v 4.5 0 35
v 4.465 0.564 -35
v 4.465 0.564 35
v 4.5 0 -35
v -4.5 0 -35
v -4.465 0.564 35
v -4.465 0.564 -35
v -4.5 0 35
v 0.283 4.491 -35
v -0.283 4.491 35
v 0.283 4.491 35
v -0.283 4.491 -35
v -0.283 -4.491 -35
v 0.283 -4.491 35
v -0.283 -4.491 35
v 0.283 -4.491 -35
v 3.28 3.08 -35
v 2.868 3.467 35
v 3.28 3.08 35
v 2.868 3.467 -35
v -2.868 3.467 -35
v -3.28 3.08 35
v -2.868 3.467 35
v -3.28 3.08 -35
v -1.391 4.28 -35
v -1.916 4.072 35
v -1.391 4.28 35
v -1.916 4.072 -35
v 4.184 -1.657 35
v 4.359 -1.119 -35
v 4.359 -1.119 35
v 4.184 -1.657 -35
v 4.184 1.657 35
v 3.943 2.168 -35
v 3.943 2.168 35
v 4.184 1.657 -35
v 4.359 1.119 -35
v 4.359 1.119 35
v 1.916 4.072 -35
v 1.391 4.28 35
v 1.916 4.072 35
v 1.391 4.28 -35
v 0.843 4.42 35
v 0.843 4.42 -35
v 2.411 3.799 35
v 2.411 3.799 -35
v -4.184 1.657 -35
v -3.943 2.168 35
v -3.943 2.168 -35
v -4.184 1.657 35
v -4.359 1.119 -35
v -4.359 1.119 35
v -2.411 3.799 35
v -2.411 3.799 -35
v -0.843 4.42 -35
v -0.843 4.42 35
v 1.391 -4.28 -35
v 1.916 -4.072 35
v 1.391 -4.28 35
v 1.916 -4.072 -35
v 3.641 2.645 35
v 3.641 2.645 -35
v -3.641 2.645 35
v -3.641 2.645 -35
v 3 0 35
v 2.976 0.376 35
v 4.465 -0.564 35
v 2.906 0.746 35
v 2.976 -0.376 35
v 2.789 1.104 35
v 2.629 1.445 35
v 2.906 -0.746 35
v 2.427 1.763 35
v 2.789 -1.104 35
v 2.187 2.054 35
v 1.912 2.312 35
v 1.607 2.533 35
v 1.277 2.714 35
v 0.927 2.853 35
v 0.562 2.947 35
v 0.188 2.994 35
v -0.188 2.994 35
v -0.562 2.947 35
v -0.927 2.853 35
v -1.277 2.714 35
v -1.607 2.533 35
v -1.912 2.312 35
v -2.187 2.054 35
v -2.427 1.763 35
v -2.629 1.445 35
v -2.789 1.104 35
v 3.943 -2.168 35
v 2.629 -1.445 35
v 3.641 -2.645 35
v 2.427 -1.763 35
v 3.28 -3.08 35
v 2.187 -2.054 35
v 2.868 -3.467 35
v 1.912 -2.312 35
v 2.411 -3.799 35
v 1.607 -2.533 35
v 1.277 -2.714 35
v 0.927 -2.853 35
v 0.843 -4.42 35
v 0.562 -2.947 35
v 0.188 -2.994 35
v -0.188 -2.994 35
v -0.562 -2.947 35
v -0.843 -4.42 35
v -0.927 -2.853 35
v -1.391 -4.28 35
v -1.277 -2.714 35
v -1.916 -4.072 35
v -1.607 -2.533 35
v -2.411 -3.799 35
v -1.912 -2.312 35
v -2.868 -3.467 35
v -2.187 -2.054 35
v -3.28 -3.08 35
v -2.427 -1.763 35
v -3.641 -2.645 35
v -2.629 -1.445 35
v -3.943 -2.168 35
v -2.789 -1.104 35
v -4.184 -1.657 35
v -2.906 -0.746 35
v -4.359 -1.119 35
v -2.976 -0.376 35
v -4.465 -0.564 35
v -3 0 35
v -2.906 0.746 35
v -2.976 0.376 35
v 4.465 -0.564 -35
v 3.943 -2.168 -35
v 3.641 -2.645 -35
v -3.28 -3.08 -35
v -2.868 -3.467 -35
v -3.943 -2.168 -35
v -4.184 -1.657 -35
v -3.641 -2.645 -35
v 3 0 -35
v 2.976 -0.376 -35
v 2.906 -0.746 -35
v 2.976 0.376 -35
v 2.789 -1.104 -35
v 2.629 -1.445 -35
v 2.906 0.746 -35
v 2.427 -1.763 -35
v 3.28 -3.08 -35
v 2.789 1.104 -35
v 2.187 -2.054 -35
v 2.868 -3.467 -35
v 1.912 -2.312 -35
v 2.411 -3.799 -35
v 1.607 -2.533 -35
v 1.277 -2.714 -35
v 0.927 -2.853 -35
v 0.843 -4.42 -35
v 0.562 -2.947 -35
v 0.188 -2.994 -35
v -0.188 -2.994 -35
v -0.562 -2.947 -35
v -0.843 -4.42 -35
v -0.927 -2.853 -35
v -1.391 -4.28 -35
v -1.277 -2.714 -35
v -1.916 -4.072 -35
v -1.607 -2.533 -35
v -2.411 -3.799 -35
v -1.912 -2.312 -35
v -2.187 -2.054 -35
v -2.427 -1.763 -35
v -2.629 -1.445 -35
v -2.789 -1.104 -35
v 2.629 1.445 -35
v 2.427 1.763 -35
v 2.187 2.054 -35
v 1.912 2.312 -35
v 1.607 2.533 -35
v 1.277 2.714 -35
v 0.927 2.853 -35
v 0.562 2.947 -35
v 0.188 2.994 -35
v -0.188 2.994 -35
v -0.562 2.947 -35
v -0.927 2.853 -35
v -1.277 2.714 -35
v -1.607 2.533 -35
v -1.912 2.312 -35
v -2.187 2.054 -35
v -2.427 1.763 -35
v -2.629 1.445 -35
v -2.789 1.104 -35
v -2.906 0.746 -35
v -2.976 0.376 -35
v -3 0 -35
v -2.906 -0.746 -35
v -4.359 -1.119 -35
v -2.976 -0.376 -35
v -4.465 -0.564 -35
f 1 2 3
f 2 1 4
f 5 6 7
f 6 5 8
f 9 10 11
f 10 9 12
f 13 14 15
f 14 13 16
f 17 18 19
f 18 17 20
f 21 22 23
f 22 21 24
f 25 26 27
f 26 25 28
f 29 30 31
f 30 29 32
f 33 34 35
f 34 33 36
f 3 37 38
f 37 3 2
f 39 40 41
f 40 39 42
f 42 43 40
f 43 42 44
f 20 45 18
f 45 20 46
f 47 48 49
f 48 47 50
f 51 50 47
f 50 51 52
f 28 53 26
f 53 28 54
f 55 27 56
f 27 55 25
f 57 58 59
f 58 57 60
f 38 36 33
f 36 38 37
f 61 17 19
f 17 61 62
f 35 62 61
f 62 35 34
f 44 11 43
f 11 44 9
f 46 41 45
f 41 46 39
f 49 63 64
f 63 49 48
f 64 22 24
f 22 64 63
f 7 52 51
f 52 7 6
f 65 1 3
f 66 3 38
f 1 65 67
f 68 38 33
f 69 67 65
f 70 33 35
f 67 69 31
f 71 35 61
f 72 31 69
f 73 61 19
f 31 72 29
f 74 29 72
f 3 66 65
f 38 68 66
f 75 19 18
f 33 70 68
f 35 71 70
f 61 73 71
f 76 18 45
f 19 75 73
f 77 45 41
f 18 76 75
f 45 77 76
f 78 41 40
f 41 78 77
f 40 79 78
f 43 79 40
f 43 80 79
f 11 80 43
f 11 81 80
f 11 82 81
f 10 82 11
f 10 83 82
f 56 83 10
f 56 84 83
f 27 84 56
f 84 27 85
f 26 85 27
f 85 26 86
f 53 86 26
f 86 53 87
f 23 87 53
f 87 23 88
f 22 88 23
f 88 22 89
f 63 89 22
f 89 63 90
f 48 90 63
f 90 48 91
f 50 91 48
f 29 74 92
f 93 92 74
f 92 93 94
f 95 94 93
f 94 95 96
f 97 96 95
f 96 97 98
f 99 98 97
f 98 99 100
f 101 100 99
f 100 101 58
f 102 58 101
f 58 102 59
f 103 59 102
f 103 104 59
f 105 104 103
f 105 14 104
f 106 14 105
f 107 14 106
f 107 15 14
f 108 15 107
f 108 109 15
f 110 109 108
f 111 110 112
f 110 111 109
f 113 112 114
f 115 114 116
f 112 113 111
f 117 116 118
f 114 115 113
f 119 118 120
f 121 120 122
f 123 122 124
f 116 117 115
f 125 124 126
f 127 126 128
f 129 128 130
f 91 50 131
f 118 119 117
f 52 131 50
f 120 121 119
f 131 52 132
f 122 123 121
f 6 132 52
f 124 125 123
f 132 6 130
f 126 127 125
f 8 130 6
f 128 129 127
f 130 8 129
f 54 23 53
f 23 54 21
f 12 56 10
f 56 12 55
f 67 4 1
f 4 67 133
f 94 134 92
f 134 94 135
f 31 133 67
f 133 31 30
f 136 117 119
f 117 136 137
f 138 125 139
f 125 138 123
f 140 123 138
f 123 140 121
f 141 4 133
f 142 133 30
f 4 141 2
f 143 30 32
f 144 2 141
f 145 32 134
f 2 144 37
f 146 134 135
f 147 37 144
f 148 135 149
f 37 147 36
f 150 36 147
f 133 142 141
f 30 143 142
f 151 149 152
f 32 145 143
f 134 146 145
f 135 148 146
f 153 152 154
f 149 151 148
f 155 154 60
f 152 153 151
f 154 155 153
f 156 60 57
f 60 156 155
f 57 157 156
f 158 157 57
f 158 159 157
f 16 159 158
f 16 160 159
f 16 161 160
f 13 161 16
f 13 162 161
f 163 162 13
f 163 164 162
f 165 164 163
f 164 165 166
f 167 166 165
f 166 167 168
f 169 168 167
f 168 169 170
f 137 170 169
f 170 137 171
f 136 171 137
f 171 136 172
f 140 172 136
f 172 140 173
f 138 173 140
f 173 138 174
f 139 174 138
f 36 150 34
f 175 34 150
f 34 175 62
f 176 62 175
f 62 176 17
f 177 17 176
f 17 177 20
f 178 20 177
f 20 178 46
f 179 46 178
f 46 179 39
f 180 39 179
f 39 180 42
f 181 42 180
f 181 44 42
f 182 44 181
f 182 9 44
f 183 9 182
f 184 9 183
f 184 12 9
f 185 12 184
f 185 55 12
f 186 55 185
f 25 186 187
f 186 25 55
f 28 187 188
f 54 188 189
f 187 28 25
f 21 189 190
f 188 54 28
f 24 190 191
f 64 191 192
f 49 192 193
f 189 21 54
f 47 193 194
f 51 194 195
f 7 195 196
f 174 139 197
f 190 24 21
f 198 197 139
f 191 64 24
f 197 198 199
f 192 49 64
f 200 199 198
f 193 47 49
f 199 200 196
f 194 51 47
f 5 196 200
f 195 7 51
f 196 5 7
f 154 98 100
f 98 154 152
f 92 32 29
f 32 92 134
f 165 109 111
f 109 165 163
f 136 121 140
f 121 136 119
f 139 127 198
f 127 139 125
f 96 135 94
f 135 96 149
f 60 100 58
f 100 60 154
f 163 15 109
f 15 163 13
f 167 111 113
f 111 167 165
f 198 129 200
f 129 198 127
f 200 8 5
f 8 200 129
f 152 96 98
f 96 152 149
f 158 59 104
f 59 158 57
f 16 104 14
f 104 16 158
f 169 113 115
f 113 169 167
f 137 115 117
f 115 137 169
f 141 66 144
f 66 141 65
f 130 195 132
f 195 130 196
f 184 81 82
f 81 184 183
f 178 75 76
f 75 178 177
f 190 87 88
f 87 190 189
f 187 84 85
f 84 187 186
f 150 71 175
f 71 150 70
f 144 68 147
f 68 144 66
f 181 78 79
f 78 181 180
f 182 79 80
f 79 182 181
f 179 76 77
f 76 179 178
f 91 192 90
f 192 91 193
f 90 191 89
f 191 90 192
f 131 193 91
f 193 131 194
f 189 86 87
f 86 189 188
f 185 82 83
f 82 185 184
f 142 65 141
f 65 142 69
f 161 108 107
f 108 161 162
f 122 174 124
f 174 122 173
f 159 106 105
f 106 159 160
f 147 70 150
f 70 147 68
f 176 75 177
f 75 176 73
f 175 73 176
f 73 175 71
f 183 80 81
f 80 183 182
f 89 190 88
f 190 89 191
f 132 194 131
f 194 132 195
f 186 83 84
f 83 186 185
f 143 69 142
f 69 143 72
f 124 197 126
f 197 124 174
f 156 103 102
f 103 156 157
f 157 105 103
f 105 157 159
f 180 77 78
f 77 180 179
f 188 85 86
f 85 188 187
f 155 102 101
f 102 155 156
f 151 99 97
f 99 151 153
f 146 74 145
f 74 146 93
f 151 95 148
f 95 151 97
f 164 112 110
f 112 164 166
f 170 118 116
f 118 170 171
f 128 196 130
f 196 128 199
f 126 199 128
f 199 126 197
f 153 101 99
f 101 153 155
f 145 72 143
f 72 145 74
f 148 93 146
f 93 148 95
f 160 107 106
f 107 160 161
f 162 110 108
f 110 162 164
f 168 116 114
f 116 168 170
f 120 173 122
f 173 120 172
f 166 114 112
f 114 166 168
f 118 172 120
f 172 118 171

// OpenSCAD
$fn = 50;


difference() {
	union() {
		translate(v = [0, 0, -35.0000000000]) {
			cylinder(h = 70, r = 4.5000000000);
		}
	}
	union() {
		translate(v = [0, 0, -100.0000000000]) {
			cylinder(h = 200, r = 3);
		}
	}
}
